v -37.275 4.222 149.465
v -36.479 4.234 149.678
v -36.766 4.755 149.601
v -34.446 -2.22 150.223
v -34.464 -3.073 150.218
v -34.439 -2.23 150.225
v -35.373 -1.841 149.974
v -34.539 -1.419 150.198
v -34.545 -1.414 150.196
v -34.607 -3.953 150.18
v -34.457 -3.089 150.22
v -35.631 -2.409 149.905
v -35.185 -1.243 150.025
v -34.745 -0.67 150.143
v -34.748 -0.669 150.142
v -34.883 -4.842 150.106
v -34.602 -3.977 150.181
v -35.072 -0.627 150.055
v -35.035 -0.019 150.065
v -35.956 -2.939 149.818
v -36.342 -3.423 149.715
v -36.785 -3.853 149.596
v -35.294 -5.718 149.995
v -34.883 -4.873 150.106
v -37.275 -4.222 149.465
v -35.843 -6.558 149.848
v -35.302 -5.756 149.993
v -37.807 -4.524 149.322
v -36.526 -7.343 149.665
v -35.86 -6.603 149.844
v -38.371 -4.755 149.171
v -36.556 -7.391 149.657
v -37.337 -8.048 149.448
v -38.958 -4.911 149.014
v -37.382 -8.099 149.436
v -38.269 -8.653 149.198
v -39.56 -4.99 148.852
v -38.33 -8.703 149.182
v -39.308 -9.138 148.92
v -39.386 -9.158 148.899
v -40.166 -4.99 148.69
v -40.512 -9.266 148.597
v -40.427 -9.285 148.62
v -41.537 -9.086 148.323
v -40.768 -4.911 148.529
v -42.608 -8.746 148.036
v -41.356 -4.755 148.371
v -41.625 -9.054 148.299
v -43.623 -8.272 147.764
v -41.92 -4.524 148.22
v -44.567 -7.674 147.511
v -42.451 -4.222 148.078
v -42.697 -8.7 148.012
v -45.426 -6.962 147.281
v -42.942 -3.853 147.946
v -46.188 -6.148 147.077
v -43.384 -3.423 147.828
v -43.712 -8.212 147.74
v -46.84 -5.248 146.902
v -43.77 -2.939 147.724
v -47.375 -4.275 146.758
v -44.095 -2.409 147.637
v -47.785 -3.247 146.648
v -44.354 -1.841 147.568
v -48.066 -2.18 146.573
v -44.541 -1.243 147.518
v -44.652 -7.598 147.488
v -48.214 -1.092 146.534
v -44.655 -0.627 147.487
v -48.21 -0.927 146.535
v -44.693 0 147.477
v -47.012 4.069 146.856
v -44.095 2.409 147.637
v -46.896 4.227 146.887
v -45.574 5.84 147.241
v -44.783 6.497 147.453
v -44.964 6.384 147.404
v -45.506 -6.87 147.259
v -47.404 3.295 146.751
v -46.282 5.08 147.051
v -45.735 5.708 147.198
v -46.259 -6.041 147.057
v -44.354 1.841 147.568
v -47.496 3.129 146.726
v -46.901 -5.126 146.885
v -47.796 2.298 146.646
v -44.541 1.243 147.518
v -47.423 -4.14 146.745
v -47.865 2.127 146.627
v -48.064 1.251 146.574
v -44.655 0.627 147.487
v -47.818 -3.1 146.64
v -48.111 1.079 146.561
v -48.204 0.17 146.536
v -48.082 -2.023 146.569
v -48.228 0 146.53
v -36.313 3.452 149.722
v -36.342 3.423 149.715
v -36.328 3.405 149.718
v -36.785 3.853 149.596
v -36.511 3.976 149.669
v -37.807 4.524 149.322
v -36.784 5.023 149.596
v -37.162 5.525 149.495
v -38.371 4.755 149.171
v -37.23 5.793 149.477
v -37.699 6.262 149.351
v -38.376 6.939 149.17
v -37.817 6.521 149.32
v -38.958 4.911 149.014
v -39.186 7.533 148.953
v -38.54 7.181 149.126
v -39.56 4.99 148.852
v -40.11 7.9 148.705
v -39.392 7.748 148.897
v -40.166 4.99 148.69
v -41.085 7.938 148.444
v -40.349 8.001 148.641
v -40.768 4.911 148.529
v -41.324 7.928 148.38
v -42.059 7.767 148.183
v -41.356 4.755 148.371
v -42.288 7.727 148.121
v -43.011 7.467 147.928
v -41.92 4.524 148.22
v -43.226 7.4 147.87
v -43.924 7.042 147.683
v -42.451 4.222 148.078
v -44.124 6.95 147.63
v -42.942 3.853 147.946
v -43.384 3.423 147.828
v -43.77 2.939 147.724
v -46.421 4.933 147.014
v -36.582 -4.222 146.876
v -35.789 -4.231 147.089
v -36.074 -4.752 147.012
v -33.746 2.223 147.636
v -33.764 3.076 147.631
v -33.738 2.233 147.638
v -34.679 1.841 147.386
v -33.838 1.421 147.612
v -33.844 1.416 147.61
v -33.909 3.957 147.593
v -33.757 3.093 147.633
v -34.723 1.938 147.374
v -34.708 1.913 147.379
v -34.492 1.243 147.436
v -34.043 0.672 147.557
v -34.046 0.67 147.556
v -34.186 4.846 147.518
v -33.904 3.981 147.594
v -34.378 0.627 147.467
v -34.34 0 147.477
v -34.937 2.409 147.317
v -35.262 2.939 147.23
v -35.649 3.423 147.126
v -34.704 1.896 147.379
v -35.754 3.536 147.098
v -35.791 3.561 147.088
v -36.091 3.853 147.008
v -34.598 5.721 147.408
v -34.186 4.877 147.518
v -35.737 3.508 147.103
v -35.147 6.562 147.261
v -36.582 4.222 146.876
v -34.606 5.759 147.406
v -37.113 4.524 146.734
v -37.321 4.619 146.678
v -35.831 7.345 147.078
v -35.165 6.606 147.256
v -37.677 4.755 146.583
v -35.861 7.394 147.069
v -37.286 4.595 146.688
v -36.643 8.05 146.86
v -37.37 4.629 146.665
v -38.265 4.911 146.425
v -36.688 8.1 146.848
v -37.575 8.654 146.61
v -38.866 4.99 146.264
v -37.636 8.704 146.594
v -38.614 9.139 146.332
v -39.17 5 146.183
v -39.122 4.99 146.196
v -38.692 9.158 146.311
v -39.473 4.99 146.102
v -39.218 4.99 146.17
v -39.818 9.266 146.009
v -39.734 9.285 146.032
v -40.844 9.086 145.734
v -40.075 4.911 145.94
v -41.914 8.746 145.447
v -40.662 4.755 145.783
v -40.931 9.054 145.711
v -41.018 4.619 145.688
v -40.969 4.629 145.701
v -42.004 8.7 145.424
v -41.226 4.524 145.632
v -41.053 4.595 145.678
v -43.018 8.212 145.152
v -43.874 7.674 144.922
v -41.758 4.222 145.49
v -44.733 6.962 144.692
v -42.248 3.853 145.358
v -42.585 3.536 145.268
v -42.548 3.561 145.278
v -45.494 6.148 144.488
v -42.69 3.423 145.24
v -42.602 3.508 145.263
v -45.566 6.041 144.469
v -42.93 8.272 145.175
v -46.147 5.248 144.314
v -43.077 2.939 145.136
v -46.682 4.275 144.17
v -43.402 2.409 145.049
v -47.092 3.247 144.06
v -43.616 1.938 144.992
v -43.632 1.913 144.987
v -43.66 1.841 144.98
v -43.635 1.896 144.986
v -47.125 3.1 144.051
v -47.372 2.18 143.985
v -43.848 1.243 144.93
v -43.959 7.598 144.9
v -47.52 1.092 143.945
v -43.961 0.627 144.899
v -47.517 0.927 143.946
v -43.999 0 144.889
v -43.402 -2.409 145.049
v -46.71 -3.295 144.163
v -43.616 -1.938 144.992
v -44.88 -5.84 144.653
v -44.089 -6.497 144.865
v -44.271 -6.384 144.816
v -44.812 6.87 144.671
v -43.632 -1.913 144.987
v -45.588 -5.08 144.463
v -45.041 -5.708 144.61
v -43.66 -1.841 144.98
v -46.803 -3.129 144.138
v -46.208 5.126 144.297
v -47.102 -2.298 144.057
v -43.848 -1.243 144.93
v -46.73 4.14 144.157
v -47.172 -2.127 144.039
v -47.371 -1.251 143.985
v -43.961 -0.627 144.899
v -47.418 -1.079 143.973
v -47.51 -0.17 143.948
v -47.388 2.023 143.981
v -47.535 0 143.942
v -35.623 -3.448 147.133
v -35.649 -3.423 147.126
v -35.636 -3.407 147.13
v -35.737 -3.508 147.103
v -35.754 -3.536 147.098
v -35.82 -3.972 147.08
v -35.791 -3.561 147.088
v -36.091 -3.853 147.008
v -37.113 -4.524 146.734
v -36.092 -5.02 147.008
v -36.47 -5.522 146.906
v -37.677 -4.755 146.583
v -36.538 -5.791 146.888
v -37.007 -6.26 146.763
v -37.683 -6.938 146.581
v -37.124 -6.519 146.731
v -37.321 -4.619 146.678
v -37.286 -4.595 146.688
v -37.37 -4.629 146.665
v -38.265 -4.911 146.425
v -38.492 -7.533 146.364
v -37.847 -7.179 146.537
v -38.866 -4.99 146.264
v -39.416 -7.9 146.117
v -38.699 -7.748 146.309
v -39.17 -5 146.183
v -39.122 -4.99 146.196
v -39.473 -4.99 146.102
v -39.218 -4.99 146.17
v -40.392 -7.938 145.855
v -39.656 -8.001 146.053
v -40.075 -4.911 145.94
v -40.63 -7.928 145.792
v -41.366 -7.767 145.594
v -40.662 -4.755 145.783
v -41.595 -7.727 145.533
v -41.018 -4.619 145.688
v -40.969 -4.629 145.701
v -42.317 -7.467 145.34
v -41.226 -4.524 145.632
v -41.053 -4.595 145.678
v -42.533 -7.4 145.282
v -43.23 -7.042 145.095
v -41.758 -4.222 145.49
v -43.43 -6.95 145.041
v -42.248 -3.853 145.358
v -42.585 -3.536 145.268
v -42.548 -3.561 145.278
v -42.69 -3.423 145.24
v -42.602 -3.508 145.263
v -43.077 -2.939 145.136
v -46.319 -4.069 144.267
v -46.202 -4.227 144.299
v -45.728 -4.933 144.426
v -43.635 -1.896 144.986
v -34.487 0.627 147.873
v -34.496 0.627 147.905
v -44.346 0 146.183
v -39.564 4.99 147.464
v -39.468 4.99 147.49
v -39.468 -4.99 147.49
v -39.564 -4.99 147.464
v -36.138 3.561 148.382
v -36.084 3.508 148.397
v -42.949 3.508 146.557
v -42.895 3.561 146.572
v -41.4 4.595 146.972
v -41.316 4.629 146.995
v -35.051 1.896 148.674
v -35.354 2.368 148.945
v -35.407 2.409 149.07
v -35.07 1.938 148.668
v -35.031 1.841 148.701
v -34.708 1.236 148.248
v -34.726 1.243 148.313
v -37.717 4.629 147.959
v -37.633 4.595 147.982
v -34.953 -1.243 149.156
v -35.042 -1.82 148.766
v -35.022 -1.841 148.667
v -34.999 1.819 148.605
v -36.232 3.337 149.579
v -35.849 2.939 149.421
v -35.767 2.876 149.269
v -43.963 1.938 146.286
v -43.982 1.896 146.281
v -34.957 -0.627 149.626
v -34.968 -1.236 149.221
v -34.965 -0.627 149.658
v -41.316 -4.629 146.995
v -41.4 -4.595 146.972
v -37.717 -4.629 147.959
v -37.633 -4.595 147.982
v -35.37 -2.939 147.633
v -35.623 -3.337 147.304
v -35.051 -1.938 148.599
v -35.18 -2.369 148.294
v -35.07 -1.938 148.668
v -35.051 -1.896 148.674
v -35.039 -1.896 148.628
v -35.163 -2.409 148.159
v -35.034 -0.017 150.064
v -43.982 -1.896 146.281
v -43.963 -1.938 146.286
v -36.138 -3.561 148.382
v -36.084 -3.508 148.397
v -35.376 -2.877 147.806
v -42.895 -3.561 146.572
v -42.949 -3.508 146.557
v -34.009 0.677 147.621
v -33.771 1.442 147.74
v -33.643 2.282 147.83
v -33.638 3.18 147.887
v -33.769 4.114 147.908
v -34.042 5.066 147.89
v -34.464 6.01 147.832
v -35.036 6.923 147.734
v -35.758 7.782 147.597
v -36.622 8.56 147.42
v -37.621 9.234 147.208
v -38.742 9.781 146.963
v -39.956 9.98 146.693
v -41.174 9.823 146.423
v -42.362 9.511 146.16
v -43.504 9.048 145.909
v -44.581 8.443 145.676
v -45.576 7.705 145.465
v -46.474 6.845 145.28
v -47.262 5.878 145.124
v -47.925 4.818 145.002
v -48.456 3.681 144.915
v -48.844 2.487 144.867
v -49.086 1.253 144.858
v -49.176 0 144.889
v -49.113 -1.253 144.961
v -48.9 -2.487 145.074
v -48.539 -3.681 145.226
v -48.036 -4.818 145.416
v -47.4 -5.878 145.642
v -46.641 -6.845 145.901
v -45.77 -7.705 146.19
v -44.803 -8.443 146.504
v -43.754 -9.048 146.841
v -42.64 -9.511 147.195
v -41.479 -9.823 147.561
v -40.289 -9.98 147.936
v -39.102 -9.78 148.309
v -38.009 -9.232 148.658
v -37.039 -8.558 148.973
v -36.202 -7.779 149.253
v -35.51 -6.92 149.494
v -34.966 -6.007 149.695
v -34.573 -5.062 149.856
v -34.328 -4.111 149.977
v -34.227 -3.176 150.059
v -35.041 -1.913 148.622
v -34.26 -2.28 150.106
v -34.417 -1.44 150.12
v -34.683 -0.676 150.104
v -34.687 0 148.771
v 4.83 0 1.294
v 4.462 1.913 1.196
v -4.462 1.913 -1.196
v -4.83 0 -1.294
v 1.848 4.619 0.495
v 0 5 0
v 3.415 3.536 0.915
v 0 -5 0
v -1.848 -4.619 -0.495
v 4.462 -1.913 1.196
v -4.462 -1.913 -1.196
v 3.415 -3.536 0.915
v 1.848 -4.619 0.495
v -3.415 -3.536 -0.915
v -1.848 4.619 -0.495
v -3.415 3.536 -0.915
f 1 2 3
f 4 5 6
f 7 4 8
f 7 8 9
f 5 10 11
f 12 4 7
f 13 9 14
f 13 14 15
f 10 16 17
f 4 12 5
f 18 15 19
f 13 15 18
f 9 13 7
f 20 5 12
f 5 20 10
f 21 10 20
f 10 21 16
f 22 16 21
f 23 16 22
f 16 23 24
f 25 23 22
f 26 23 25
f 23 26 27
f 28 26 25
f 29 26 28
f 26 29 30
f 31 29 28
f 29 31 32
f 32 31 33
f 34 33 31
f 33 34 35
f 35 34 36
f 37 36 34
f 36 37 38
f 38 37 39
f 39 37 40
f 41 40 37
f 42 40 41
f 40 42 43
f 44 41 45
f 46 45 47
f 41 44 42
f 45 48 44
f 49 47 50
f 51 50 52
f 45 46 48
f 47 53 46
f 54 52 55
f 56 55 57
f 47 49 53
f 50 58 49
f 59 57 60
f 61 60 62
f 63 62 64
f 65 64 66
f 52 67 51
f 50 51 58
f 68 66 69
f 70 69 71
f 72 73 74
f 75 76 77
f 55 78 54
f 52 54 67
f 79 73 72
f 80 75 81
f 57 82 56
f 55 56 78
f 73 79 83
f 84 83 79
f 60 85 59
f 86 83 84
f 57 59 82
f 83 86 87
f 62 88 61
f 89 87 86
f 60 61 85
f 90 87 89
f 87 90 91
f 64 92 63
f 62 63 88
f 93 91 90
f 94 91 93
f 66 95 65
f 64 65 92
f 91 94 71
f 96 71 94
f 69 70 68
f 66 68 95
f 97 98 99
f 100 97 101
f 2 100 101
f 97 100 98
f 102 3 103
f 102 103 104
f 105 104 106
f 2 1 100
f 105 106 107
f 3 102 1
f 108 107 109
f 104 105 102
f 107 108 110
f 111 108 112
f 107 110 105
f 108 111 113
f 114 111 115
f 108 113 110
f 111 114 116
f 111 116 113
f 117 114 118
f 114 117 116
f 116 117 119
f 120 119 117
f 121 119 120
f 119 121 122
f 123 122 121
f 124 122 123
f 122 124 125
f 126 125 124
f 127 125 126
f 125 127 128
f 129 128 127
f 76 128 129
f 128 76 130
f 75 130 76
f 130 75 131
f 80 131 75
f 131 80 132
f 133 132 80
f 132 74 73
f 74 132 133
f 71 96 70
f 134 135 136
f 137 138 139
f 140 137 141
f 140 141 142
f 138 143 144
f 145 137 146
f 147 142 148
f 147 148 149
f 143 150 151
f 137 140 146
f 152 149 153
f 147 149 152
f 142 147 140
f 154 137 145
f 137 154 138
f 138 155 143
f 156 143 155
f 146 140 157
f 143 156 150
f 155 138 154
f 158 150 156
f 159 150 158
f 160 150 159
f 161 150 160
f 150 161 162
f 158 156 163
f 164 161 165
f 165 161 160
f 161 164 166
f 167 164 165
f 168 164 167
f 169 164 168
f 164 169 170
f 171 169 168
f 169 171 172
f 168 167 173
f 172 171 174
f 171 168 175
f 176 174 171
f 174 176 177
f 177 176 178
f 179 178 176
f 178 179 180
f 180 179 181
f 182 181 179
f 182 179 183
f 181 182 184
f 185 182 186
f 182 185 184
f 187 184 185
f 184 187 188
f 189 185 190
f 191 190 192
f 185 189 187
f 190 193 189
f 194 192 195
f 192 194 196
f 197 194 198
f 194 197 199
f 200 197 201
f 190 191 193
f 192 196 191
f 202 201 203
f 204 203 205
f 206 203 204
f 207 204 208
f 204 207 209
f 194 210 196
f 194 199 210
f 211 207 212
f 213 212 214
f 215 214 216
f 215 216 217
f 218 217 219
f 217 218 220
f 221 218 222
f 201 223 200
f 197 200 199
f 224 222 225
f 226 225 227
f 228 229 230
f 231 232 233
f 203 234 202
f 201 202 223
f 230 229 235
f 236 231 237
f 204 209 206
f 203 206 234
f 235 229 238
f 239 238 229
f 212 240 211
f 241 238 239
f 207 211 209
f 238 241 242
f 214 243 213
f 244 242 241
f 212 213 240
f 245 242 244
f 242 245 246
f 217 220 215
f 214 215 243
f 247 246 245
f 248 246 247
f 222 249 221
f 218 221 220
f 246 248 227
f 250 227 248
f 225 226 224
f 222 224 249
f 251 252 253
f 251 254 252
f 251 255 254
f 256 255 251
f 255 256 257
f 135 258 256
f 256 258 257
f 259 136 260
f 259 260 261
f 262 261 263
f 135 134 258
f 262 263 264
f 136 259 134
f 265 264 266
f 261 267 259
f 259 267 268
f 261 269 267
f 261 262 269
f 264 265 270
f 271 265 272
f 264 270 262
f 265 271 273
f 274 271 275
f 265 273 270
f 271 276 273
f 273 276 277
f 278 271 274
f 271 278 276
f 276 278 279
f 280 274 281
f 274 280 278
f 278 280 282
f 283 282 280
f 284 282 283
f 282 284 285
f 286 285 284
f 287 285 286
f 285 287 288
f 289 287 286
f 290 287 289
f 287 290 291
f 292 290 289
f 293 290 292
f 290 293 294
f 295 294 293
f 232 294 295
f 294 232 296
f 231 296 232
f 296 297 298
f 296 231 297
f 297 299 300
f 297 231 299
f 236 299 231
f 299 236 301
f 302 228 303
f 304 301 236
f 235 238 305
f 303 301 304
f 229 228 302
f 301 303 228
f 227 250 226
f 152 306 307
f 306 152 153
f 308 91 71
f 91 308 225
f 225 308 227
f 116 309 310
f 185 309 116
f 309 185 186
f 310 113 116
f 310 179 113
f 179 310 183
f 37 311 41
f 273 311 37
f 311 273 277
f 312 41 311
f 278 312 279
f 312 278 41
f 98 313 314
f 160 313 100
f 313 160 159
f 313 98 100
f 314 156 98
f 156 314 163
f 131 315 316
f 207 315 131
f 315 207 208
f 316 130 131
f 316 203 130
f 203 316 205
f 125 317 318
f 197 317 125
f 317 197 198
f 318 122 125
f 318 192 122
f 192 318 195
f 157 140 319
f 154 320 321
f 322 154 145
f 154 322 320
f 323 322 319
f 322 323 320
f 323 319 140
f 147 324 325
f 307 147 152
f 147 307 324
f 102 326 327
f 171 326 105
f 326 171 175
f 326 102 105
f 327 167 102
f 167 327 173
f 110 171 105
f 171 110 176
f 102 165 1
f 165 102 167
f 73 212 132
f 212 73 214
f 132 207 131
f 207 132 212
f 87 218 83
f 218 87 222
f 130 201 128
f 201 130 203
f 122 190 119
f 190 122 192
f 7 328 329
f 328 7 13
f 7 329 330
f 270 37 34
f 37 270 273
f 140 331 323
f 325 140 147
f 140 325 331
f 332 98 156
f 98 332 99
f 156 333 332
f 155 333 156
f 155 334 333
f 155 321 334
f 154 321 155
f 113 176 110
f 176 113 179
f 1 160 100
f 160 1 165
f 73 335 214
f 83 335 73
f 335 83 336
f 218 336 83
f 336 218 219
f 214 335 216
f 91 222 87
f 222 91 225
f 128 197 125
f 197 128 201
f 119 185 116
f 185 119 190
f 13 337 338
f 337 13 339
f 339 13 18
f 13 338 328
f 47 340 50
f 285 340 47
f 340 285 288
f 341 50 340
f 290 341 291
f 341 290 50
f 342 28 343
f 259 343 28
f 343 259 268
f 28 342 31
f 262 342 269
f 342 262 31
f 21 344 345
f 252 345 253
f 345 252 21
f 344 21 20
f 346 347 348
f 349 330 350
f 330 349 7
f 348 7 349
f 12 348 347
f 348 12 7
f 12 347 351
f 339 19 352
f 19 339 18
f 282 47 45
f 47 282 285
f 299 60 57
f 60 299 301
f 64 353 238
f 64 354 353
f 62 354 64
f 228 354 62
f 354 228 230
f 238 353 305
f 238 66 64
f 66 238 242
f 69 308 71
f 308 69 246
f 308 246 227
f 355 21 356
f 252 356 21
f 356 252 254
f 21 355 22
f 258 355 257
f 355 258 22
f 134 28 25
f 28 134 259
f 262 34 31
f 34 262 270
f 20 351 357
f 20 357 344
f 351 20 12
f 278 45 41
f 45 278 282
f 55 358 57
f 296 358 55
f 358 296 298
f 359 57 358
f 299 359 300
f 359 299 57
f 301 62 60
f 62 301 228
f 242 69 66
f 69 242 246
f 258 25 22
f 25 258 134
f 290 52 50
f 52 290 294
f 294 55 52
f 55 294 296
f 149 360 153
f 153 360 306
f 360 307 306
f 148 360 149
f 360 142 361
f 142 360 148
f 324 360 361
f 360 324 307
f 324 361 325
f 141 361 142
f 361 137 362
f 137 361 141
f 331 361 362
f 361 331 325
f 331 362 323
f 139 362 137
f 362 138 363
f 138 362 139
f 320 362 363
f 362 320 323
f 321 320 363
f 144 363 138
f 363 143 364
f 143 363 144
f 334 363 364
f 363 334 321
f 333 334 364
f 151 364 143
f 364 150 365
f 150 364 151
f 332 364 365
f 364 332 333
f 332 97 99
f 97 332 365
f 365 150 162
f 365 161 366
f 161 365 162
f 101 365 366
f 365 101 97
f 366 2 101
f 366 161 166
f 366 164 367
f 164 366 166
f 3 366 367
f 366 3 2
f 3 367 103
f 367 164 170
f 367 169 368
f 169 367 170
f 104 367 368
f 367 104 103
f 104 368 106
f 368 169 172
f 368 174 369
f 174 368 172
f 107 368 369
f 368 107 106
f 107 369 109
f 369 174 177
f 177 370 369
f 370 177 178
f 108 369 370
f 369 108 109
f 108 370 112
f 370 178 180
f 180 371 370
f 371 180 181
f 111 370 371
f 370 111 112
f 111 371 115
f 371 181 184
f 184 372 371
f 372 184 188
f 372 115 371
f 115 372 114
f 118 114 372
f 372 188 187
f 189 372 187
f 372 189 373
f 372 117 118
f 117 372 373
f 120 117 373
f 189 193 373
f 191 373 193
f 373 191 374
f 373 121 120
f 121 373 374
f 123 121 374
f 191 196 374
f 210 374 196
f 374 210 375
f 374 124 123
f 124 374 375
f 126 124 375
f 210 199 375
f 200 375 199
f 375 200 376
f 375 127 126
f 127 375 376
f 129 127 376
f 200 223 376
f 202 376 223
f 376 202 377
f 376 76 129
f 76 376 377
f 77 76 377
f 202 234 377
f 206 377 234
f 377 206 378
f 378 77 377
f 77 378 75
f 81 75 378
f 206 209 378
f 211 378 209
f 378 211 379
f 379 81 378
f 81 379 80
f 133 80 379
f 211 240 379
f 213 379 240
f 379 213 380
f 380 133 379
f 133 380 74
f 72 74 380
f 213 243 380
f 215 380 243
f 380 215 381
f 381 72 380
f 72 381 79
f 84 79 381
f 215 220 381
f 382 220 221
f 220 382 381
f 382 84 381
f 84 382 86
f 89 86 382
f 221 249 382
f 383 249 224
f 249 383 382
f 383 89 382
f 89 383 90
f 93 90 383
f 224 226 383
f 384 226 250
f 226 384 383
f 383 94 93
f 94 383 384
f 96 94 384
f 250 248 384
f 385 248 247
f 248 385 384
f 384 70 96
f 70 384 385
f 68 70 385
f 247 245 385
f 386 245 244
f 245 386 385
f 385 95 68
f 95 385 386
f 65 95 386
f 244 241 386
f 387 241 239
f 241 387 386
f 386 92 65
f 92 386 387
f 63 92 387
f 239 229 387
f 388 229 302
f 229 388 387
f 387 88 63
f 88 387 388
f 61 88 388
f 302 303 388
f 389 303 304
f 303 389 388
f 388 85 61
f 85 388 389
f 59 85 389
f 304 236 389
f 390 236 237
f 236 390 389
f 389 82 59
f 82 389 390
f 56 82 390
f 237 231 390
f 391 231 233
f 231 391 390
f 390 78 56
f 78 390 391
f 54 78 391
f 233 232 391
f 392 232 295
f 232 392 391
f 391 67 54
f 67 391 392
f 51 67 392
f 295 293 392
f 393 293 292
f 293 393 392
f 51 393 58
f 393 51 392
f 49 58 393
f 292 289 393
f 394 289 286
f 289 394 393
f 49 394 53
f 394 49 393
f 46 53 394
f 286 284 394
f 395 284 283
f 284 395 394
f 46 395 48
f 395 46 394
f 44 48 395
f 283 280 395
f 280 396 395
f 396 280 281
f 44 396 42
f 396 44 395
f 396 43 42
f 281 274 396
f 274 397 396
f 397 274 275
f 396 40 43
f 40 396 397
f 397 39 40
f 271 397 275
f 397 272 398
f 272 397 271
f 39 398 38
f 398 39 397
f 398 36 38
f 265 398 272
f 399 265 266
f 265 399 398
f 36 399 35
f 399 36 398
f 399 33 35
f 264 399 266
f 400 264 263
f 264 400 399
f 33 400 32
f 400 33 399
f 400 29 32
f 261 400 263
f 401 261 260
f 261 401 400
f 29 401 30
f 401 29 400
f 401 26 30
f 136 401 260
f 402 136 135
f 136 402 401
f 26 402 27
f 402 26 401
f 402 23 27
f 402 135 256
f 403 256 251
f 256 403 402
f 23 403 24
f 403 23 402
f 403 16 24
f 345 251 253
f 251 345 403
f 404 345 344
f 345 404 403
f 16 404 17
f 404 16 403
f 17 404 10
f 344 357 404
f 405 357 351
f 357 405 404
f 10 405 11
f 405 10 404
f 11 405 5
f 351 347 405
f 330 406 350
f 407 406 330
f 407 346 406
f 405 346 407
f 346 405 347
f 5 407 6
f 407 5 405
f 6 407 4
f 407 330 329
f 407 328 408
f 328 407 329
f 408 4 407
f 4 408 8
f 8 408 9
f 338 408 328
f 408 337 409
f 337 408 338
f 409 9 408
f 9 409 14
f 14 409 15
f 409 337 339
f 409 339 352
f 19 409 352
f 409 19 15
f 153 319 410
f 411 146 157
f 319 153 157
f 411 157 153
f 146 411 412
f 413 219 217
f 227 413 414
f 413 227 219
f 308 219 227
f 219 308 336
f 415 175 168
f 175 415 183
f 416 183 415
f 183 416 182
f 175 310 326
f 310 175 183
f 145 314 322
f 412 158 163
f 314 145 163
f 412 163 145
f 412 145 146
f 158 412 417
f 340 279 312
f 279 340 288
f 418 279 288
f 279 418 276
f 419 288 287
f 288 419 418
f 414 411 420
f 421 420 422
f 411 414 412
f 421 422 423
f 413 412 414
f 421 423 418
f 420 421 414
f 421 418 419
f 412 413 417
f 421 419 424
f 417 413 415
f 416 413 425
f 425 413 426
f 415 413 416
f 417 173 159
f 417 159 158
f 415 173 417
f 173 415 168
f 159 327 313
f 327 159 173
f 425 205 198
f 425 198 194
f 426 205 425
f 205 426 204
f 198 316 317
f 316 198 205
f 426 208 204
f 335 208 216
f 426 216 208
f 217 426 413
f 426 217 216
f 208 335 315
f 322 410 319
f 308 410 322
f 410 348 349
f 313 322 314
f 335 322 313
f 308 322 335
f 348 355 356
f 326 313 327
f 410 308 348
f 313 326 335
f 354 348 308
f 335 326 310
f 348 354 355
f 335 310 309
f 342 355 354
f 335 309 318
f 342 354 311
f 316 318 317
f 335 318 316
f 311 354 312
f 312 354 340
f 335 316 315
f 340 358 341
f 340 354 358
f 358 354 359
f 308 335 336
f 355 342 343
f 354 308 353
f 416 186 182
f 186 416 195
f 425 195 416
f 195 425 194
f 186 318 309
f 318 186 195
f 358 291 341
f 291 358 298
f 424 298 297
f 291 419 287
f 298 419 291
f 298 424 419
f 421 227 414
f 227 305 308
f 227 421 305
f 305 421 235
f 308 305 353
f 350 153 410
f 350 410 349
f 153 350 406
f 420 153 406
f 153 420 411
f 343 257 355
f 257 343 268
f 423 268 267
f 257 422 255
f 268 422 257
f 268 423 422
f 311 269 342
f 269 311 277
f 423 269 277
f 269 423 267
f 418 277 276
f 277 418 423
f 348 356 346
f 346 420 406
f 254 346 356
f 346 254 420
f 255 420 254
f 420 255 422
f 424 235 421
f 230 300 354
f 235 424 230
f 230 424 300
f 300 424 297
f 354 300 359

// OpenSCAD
// Generated by SolidPython 1.0.4 on 2020-12-29 06:36:49


difference() {
	rotate(a = [0, -15, 0]) {
		translate(v = [0, 0, 76.3397459622]) {
			union() {
				cylinder(center = true, h = 152.6794919243, r = 5);
				translate(v = [0, 0, 75.0000000000]) {
					intersection() {
						polyhedron(convexity = 2, faces = [[0, 1, 3], [1, 4, 3], [1, 2, 4], [2, 5, 4], [0, 5, 2], [0, 3, 5], [3, 4, 6], [4, 7, 6], [4, 5, 7], [5, 8, 7], [3, 8, 5], [3, 6, 8], [6, 7, 9], [7, 10, 9], [7, 8, 10], [8, 11, 10], [6, 11, 8], [6, 9, 11], [9, 10, 12], [10, 13, 12], [10, 11, 13], [11, 14, 13], [9, 14, 11], [9, 12, 14], [12, 13, 15], [13, 16, 15], [13, 14, 16], [14, 17, 16], [12, 17, 14], [12, 15, 17], [15, 16, 18], [16, 19, 18], [16, 17, 19], [17, 20, 19], [15, 20, 17], [15, 18, 20], [18, 19, 21], [19, 22, 21], [19, 20, 22], [20, 23, 22], [18, 23, 20], [18, 21, 23], [21, 22, 24], [22, 25, 24], [22, 23, 25], [23, 26, 25], [21, 26, 23], [21, 24, 26], [24, 25, 27], [25, 28, 27], [25, 26, 28], [26, 29, 28], [24, 29, 26], [24, 27, 29], [27, 28, 30], [28, 31, 30], [28, 29, 31], [29, 32, 31], [27, 32, 29], [27, 30, 32], [30, 31, 33], [31, 34, 33], [31, 32, 34], [32, 35, 34], [30, 35, 32], [30, 33, 35], [33, 34, 36], [34, 37, 36], [34, 35, 37], [35, 38, 37], [33, 38, 35], [33, 36, 38], [36, 37, 39], [37, 40, 39], [37, 38, 40], [38, 41, 40], [36, 41, 38], [36, 39, 41], [39, 40, 42], [40, 43, 42], [40, 41, 43], [41, 44, 43], [39, 44, 41], [39, 42, 44], [42, 43, 45], [43, 46, 45], [43, 44, 46], [44, 47, 46], [42, 47, 44], [42, 45, 47], [45, 46, 48], [46, 49, 48], [46, 47, 49], [47, 50, 49], [45, 50, 47], [45, 48, 50], [48, 49, 51], [49, 52, 51], [49, 50, 52], [50, 53, 52], [48, 53, 50], [48, 51, 53], [51, 52, 54], [52, 55, 54], [52, 53, 55], [53, 56, 55], [51, 56, 53], [51, 54, 56], [54, 55, 57], [55, 58, 57], [55, 56, 58], [56, 59, 58], [54, 59, 56], [54, 57, 59], [57, 58, 60], [58, 61, 60], [58, 59, 61], [59, 62, 61], [57, 62, 59], [57, 60, 62], [60, 61, 63], [61, 64, 63], [61, 62, 64], [62, 65, 64], [60, 65, 62], [60, 63, 65], [63, 64, 66], [64, 67, 66], [64, 65, 67], [65, 68, 67], [63, 68, 65], [63, 66, 68], [66, 67, 69], [67, 70, 69], [67, 68, 70], [68, 71, 70], [66, 71, 68], [66, 69, 71], [69, 70, 72], [70, 73, 72], [70, 71, 73], [71, 74, 73], [69, 74, 71], [69, 72, 74], [72, 73, 75], [73, 76, 75], [73, 74, 76], [74, 77, 76], [72, 77, 74], [72, 75, 77], [75, 76, 78], [76, 79, 78], [76, 77, 79], [77, 80, 79], [75, 80, 77], [75, 78, 80], [78, 79, 81], [79, 82, 81], [79, 80, 82], [80, 83, 82], [78, 83, 80], [78, 81, 83], [81, 82, 84], [82, 85, 84], [82, 83, 85], [83, 86, 85], [81, 86, 83], [81, 84, 86], [84, 85, 87], [85, 88, 87], [85, 86, 88], [86, 89, 88], [84, 89, 86], [84, 87, 89], [87, 88, 90], [88, 91, 90], [88, 89, 91], [89, 92, 91], [87, 92, 89], [87, 90, 92], [90, 91, 93], [91, 94, 93], [91, 92, 94], [92, 95, 94], [90, 95, 92], [90, 93, 95], [93, 94, 96], [94, 97, 96], [94, 95, 97], [95, 98, 97], [93, 98, 95], [93, 96, 98], [96, 97, 99], [97, 100, 99], [97, 98, 100], [98, 101, 100], [96, 101, 98], [96, 99, 101], [99, 100, 102], [100, 103, 102], [100, 101, 103], [101, 104, 103], [99, 104, 101], [99, 102, 104], [102, 103, 105], [103, 106, 105], [103, 104, 106], [104, 107, 106], [102, 107, 104], [102, 105, 107], [105, 106, 108], [106, 109, 108], [106, 107, 109], [107, 110, 109], [105, 110, 107], [105, 108, 110], [108, 109, 111], [109, 112, 111], [109, 110, 112], [110, 113, 112], [108, 113, 110], [108, 111, 113], [111, 112, 114], [112, 115, 114], [112, 113, 115], [113, 116, 115], [111, 116, 113], [111, 114, 116], [114, 115, 117], [115, 118, 117], [115, 116, 118], [116, 119, 118], [114, 119, 116], [114, 117, 119], [117, 118, 120], [118, 121, 120], [118, 119, 121], [119, 122, 121], [117, 122, 119], [117, 120, 122], [120, 121, 123], [121, 124, 123], [121, 122, 124], [122, 125, 124], [120, 125, 122], [120, 123, 125], [123, 124, 126], [124, 127, 126], [124, 125, 127], [125, 128, 127], [123, 128, 125], [123, 126, 128], [126, 127, 129], [127, 130, 129], [127, 128, 130], [128, 131, 130], [126, 131, 128], [126, 129, 131], [129, 130, 132], [130, 133, 132], [130, 131, 133], [131, 134, 133], [129, 134, 131], [129, 132, 134], [132, 133, 135], [133, 136, 135], [133, 134, 136], [134, 137, 136], [132, 137, 134], [132, 135, 137], [135, 136, 138], [136, 139, 138], [136, 137, 139], [137, 140, 139], [135, 140, 137], [135, 138, 140], [138, 139, 141], [139, 142, 141], [139, 140, 142], [140, 143, 142], [138, 143, 140], [138, 141, 143], [141, 142, 144], [142, 145, 144], [142, 143, 145], [143, 146, 145], [141, 146, 143], [141, 144, 146], [144, 145, 147], [145, 148, 147], [145, 146, 148], [146, 149, 148], [144, 149, 146], [144, 147, 149], [147, 148, 150], [148, 151, 150], [148, 149, 151], [149, 152, 151], [147, 152, 149], [147, 150, 152], [0, 2, 1], [150, 151, 152]], points = [[0.0000000000, 0.0000000000, -5.0000000000], [5.0000000000, 0.0000000000, 0.0000000000], [0.0000000000, 0.0000000000, 5.0000000000], [0.3968458805, 0.0501332934, -4.9464101615], [5.3574193871, 0.6767994612, 0.0535898385], [0.3968458805, 0.0501332934, 5.0535898385], [0.7748665289, 0.1989519097, -4.8928203230], [5.6177823345, 1.4424013456, 0.1071796770], [0.7748665289, 0.1989519097, 5.1071796770], [1.1157317831, 0.4417494632, -4.8392304845], [5.7646142125, 2.2823722266, 0.1607695155], [1.1157317831, 0.4417494632, 5.1607695155], [1.4020906881, 0.7708058786, -4.7856406461], [5.7836240883, 3.1795742491, 0.2143593539], [1.4020906881, 0.7708058786, 5.2143593539], [1.6180339887, 1.1755705046, -4.7320508076], [5.6631189606, 4.1144967660, 0.2679491924], [1.6180339887, 1.1755705046, 5.2679491924], [1.7495247058, 1.6429130542, -4.6784609691], [5.3943678429, 5.0656485839, 0.3215390309], [1.7495247058, 1.6429130542, 5.3215390309], [1.7847871713, 2.1574370798, -4.6248711306], [4.9719071200, 6.0100032937, 0.3751288694], [1.7847871713, 2.1574370798, 5.3751288694], [1.7146457439, 2.7018493616, -4.5712812921], [4.3937797188, 6.9234889891, 0.4287187079], [1.7146457439, 2.7018493616, 5.4287187079], [1.5328054496, 3.2573773889, -4.5176914536], [3.6617019075, 7.7815126512, 0.4823085464], [1.5328054496, 3.2573773889, 5.4823085464], [1.2360679775, 3.8042260652, -4.4641016151], [2.7811529494, 8.5595086467, 0.5358983849], [1.2360679775, 3.8042260652, 5.5358983849], [0.8244777842, 4.3220639032, -4.4105117767], [1.7613843571, 9.2335001568, 0.5894882233], [0.8244777842, 4.3220639032, 5.5894882233], [0.3013944937, 4.7905282965, -4.3569219382], [0.6153470914, 9.7806619386, 0.6430780618], [0.3013944937, 4.7905282965, 5.6430780618], [-0.3139525976, 4.9901336421, -4.3033320997], [-0.6279051953, 9.9802672843, 0.6966679003], [-0.3139525976, 4.9901336421, 5.6966679003], [-0.9369065729, 4.9114362536, -4.2497422612], [-1.8738131459, 9.8228725073, 0.7502577388], [-0.9369065729, 4.9114362536, 5.7502577388], [-1.5450849719, 4.7552825815, -4.1961524227], [-3.0901699437, 9.5105651630, 0.8038475773], [-1.5450849719, 4.7552825815, 5.8038475773], [-2.1288964578, 4.5241352623, -4.1425625842], [-4.2577929157, 9.0482705247, 0.8574374158], [-2.1288964578, 4.5241352623, 5.8574374158], [-2.6791339749, 4.2216396275, -4.0889727457], [-5.3582679498, 8.4432792550, 0.9110272543], [-2.6791339749, 4.2216396275, 5.9110272543], [-3.1871199487, 3.8525662139, -4.0353829072], [-6.3742398975, 7.7051324278, 0.9646170928], [-3.1871199487, 3.8525662139, 5.9646170928], [-3.6448431371, 3.4227355296, -3.9817930688], [-7.2896862742, 6.8454710593, 1.0182069312], [-3.6448431371, 3.4227355296, 6.0182069312], [-4.0450849719, 2.9389262615, -3.9282032303], [-8.0901699437, 5.8778525229, 1.0717967697], [-4.0450849719, 2.9389262615, 6.0717967697], [-4.3815334002, 2.4087683705, -3.8746133918], [-8.7630668004, 4.8175367410, 1.1253866082], [-4.3815334002, 2.4087683705, 6.1253866082], [-4.6488824294, 1.8406227634, -3.8210235533], [-9.2977648589, 3.6812455268, 1.1789764467], [-4.6488824294, 1.8406227634, 6.1789764467], [-4.8429158056, 1.2434494358, -3.7674337148], [-9.6858316113, 2.4868988716, 1.2325662852], [-4.8429158056, 1.2434494358, 6.2325662852], [-4.9605735066, 0.6266661678, -3.7138438763], [-9.9211470131, 1.2533323356, 1.2861561237], [-4.9605735066, 0.6266661678, 6.2861561237], [-5.0000000000, 0.0000000000, -3.6602540378], [-10.0000000000, 0.0000000000, 1.3397459622], [-5.0000000000, 0.0000000000, 6.3397459622], [-4.9605735066, -0.6266661678, -3.6066641994], [-9.9211470131, -1.2533323356, 1.3933358006], [-4.9605735066, -0.6266661678, 6.3933358006], [-4.8429158056, -1.2434494358, -3.5530743609], [-9.6858316113, -2.4868988716, 1.4469256391], [-4.8429158056, -1.2434494358, 6.4469256391], [-4.6488824294, -1.8406227634, -3.4994845224], [-9.2977648589, -3.6812455268, 1.5005154776], [-4.6488824294, -1.8406227634, 6.5005154776], [-4.3815334002, -2.4087683705, -3.4458946839], [-8.7630668004, -4.8175367410, 1.5541053161], [-4.3815334002, -2.4087683705, 6.5541053161], [-4.0450849719, -2.9389262615, -3.3923048454], [-8.0901699437, -5.8778525229, 1.6076951546], [-4.0450849719, -2.9389262615, 6.6076951546], [-3.6448431371, -3.4227355296, -3.3387150069], [-7.2896862742, -6.8454710593, 1.6612849931], [-3.6448431371, -3.4227355296, 6.6612849931], [-3.1871199487, -3.8525662139, -3.2851251684], [-6.3742398975, -7.7051324278, 1.7148748316], [-3.1871199487, -3.8525662139, 6.7148748316], [-2.6791339749, -4.2216396275, -3.2315353300], [-5.3582679498, -8.4432792550, 1.7684646700], [-2.6791339749, -4.2216396275, 6.7684646700], [-2.1288964578, -4.5241352623, -3.1779454915], [-4.2577929157, -9.0482705247, 1.8220545085], [-2.1288964578, -4.5241352623, 6.8220545085], [-1.5450849719, -4.7552825815, -3.1243556530], [-3.0901699437, -9.5105651630, 1.8756443470], [-1.5450849719, -4.7552825815, 6.8756443470], [-0.9369065729, -4.9114362536, -3.0707658145], [-1.8738131459, -9.8228725073, 1.9292341855], [-0.9369065729, -4.9114362536, 6.9292341855], [-0.3139525976, -4.9901336421, -3.0171759760], [-0.6279051953, -9.9802672843, 1.9828240240], [-0.3139525976, -4.9901336421, 6.9828240240], [0.3013693775, -4.7901290858, -2.9635861375], [0.6153219752, -9.7802627279, 2.0364138625], [0.3013693775, -4.7901290858, 7.0364138625], [0.8242529266, -4.3208851585, -2.9099962990], [1.7611594995, -9.2323214121, 2.0900037010], [0.8242529266, -4.3208851585, 7.0900037010], [1.2354499435, -3.8023239521, -2.8564064606], [2.7805349154, -8.5576065336, 2.1435935394], [1.2354499435, -3.8023239521, 7.1435935394], [1.5316132676, -3.2548438731, -2.8028166221], [3.6605097254, -7.7789791355, 2.1971833779], [1.5316132676, -3.2548438731, 7.1971833779], [1.7127167675, -2.6988097811, -2.7492267836], [4.3918507424, -6.9204494086, 2.2507732164], [1.7127167675, -2.6988097811, 7.2507732164], [1.7819825057, -2.1540468215, -2.6956369451], [4.9691024545, -6.0066130354, 2.3043630549], [1.7819825057, -2.1540468215, 7.3043630549], [1.7457340689, -1.6393534093, -2.6420471066], [5.3905772061, -5.0620889389, 2.3579528934], [1.7457340689, -1.6393534093, 7.3579528934], [1.6131798868, -1.1720437931, -2.5884572681], [5.6582648587, -4.1109700545, 2.4115427319], [1.6131798868, -1.1720437931, 7.4115427319], [1.3961318026, -0.7675299536, -2.5348674296], [5.7776652029, -3.1762983241, 2.4651325704], [1.3961318026, -0.7675299536, 7.4651325704], [1.1086654818, -0.4389517166, -2.4812775911], [5.7575479112, -2.2795744800, 2.5187224089], [1.1086654818, -0.4389517166, 7.5187224089], [0.7667304303, -0.1968629147, -2.4276877527], [5.6096462360, -1.4403123505, 2.5723122473], [0.7667304303, -0.1968629147, 7.5723122473], [0.3877184253, -0.0489802277, -2.3740979142], [5.3482919318, -0.6756463955, 2.6259020858], [0.3877184253, -0.0489802277, 7.6259020858], [-0.0100000000, 0.0000000000, -2.3205080757], [4.9900000000, -0.0000000000, 2.6794919243], [-0.0100000000, 0.0000000000, 7.6794919243]]);
						difference() {
							cylinder($fn = 50, h = 2.6794919243, r1 = 10.0100000000, r2 = 10.0100000000);
							cylinder($fn = 50, h = 2.6794919243, r1 = 5, r2 = 5);
						}
					}
				}
			}
		}
	}
}
/***********************************************
*********      SolidPython code:      **********
************************************************
 
# TODO: consider a brita filter as a mount since corrosion seems negligable
#       as long as chlorine bumps off and minerals/metals are filtered.
#       open loop will corrode a bit anyways but shouldnt change conductive
#       property of aluminum.
#       this isnt unreasonable given 100% infill with large wall_thickness.
#       can just insert brita filter in a 3D printed stand.
#       can use arduino for filter life measurement using the flap button
#       method of brita
# TODO: consider an RGB fade color for water height when arduino
#       circuit is developed.
from solid import *
from solid.utils import *
from solid import screw_thread
from math import sin, cos, tan
import toml
import os

# This is currently the highest priority print.


def bottle_stand(leg_height, leg_camber, wall_thickness, nozzle_diameter, nozzle_depth,
                 bottle_diameter, bottle_depth):
    '''
    PARAMETERS:
        leg_height: the height of the riser legs
        leg_camber: the tilt of the leg to lower the center of mass in degrees
        wall_thickness: the general thickness of the solution
        bottle_diameter: the diameter of the bottle body past the nozzle
        bottle_depth: the length of the bottle nozzle until the bottle body
    '''
    # create bottle holder
    orifice_solid = cylinder(r=bottle_diameter/2 + wall_thickness,
                             h=bottle_depth, center=True)
    # hole here since legs may jut
    orifice = orifice_solid - cylinder(r=bottle_diameter /
                                       2, h=bottle_depth, center=True)
    # raise orifice to leg stand height
    orifice = up(leg_height+bottle_depth/2)(orifice)

    # the cusp of the nozzle holder
    throat_solid = cylinder(r1=nozzle_diameter/2 + wall_thickness,
                            r2=bottle_diameter/2 + wall_thickness, h=nozzle_depth, center=True)
    # hole here since legs may jut
    throat = throat_solid - cylinder(r1=nozzle_diameter/2,
                                     r2=bottle_diameter/2, h=nozzle_depth, center=True)
    throat = up(leg_height-nozzle_depth/2)(throat)

    # create tripod base
    # a synthetic "floor" for ensuring legs are level through subtraction.
    base_plate = cube([2*leg_height+bottle_diameter, 2*leg_height+bottle_diameter,
                       2*wall_thickness], center=True)
    rotation_offset_x = leg_height*sin(radians(leg_camber))
    rotation_offset_y = leg_height*cos(radians(leg_camber))
    # solve the intersection of the leg with the orifice penetrating wall_thickness
    screw_insert_distance = 2*wall_thickness*tan(radians(leg_camber))
    leg = cylinder(r=wall_thickness, h=leg_height +
                   screw_insert_distance, center=True)
    # TODO: adjust screw params for precision of print, possibly extract parameter
    section = screw_thread.default_thread_section(
        tooth_height=10, tooth_depth=5)
    leg_screw = screw_thread.thread(outline_pts=section,
                                    inner_rad=wall_thickness,
                                    pitch=screw_insert_distance,
                                    length=screw_insert_distance,
                                    segments_per_rot=50,
                                    neck_in_degrees=90,
                                    neck_out_degrees=90)
    leg = leg+up(leg_height/2)(leg_screw)
    leg = rotate([0, -leg_camber, 0])(up(leg_height /
                                         2+screw_insert_distance/2)(leg))
    leg = leg - hole()(base_plate)
    legs = right(rotation_offset_x + bottle_diameter/2)(leg)
    legs += rotate(120)(legs)
    legs += rotate(240)(legs)

    stand = orifice + throat
    stand = stand - legs
    return stand, leg


def render_object(render_object, filename):
    '''
    creates a .stl and .scad solution for the given solidpython OpenSCAD object
    PARAMETERS:
        render_object: the OpenSCAD object
        filename: a string for the file to be saved
    '''
    scad_render_to_file(render_object, filename + ".scad")
    # render with OpenSCAD
    print("Openscad is now rendering the solution..")
    os.system("start ../OpenSCAD/openscad.exe -o " +
              filename + ".stl " + filename + ".scad")


if __name__ == '__main__':
    config = toml.load("configuration.toml")
    stand, leg = bottle_stand(**config)
    render_object(stand, "bottle_stand")
    render_object(leg, "x3_bottle_stand_leg")
 
 
************************************************/
